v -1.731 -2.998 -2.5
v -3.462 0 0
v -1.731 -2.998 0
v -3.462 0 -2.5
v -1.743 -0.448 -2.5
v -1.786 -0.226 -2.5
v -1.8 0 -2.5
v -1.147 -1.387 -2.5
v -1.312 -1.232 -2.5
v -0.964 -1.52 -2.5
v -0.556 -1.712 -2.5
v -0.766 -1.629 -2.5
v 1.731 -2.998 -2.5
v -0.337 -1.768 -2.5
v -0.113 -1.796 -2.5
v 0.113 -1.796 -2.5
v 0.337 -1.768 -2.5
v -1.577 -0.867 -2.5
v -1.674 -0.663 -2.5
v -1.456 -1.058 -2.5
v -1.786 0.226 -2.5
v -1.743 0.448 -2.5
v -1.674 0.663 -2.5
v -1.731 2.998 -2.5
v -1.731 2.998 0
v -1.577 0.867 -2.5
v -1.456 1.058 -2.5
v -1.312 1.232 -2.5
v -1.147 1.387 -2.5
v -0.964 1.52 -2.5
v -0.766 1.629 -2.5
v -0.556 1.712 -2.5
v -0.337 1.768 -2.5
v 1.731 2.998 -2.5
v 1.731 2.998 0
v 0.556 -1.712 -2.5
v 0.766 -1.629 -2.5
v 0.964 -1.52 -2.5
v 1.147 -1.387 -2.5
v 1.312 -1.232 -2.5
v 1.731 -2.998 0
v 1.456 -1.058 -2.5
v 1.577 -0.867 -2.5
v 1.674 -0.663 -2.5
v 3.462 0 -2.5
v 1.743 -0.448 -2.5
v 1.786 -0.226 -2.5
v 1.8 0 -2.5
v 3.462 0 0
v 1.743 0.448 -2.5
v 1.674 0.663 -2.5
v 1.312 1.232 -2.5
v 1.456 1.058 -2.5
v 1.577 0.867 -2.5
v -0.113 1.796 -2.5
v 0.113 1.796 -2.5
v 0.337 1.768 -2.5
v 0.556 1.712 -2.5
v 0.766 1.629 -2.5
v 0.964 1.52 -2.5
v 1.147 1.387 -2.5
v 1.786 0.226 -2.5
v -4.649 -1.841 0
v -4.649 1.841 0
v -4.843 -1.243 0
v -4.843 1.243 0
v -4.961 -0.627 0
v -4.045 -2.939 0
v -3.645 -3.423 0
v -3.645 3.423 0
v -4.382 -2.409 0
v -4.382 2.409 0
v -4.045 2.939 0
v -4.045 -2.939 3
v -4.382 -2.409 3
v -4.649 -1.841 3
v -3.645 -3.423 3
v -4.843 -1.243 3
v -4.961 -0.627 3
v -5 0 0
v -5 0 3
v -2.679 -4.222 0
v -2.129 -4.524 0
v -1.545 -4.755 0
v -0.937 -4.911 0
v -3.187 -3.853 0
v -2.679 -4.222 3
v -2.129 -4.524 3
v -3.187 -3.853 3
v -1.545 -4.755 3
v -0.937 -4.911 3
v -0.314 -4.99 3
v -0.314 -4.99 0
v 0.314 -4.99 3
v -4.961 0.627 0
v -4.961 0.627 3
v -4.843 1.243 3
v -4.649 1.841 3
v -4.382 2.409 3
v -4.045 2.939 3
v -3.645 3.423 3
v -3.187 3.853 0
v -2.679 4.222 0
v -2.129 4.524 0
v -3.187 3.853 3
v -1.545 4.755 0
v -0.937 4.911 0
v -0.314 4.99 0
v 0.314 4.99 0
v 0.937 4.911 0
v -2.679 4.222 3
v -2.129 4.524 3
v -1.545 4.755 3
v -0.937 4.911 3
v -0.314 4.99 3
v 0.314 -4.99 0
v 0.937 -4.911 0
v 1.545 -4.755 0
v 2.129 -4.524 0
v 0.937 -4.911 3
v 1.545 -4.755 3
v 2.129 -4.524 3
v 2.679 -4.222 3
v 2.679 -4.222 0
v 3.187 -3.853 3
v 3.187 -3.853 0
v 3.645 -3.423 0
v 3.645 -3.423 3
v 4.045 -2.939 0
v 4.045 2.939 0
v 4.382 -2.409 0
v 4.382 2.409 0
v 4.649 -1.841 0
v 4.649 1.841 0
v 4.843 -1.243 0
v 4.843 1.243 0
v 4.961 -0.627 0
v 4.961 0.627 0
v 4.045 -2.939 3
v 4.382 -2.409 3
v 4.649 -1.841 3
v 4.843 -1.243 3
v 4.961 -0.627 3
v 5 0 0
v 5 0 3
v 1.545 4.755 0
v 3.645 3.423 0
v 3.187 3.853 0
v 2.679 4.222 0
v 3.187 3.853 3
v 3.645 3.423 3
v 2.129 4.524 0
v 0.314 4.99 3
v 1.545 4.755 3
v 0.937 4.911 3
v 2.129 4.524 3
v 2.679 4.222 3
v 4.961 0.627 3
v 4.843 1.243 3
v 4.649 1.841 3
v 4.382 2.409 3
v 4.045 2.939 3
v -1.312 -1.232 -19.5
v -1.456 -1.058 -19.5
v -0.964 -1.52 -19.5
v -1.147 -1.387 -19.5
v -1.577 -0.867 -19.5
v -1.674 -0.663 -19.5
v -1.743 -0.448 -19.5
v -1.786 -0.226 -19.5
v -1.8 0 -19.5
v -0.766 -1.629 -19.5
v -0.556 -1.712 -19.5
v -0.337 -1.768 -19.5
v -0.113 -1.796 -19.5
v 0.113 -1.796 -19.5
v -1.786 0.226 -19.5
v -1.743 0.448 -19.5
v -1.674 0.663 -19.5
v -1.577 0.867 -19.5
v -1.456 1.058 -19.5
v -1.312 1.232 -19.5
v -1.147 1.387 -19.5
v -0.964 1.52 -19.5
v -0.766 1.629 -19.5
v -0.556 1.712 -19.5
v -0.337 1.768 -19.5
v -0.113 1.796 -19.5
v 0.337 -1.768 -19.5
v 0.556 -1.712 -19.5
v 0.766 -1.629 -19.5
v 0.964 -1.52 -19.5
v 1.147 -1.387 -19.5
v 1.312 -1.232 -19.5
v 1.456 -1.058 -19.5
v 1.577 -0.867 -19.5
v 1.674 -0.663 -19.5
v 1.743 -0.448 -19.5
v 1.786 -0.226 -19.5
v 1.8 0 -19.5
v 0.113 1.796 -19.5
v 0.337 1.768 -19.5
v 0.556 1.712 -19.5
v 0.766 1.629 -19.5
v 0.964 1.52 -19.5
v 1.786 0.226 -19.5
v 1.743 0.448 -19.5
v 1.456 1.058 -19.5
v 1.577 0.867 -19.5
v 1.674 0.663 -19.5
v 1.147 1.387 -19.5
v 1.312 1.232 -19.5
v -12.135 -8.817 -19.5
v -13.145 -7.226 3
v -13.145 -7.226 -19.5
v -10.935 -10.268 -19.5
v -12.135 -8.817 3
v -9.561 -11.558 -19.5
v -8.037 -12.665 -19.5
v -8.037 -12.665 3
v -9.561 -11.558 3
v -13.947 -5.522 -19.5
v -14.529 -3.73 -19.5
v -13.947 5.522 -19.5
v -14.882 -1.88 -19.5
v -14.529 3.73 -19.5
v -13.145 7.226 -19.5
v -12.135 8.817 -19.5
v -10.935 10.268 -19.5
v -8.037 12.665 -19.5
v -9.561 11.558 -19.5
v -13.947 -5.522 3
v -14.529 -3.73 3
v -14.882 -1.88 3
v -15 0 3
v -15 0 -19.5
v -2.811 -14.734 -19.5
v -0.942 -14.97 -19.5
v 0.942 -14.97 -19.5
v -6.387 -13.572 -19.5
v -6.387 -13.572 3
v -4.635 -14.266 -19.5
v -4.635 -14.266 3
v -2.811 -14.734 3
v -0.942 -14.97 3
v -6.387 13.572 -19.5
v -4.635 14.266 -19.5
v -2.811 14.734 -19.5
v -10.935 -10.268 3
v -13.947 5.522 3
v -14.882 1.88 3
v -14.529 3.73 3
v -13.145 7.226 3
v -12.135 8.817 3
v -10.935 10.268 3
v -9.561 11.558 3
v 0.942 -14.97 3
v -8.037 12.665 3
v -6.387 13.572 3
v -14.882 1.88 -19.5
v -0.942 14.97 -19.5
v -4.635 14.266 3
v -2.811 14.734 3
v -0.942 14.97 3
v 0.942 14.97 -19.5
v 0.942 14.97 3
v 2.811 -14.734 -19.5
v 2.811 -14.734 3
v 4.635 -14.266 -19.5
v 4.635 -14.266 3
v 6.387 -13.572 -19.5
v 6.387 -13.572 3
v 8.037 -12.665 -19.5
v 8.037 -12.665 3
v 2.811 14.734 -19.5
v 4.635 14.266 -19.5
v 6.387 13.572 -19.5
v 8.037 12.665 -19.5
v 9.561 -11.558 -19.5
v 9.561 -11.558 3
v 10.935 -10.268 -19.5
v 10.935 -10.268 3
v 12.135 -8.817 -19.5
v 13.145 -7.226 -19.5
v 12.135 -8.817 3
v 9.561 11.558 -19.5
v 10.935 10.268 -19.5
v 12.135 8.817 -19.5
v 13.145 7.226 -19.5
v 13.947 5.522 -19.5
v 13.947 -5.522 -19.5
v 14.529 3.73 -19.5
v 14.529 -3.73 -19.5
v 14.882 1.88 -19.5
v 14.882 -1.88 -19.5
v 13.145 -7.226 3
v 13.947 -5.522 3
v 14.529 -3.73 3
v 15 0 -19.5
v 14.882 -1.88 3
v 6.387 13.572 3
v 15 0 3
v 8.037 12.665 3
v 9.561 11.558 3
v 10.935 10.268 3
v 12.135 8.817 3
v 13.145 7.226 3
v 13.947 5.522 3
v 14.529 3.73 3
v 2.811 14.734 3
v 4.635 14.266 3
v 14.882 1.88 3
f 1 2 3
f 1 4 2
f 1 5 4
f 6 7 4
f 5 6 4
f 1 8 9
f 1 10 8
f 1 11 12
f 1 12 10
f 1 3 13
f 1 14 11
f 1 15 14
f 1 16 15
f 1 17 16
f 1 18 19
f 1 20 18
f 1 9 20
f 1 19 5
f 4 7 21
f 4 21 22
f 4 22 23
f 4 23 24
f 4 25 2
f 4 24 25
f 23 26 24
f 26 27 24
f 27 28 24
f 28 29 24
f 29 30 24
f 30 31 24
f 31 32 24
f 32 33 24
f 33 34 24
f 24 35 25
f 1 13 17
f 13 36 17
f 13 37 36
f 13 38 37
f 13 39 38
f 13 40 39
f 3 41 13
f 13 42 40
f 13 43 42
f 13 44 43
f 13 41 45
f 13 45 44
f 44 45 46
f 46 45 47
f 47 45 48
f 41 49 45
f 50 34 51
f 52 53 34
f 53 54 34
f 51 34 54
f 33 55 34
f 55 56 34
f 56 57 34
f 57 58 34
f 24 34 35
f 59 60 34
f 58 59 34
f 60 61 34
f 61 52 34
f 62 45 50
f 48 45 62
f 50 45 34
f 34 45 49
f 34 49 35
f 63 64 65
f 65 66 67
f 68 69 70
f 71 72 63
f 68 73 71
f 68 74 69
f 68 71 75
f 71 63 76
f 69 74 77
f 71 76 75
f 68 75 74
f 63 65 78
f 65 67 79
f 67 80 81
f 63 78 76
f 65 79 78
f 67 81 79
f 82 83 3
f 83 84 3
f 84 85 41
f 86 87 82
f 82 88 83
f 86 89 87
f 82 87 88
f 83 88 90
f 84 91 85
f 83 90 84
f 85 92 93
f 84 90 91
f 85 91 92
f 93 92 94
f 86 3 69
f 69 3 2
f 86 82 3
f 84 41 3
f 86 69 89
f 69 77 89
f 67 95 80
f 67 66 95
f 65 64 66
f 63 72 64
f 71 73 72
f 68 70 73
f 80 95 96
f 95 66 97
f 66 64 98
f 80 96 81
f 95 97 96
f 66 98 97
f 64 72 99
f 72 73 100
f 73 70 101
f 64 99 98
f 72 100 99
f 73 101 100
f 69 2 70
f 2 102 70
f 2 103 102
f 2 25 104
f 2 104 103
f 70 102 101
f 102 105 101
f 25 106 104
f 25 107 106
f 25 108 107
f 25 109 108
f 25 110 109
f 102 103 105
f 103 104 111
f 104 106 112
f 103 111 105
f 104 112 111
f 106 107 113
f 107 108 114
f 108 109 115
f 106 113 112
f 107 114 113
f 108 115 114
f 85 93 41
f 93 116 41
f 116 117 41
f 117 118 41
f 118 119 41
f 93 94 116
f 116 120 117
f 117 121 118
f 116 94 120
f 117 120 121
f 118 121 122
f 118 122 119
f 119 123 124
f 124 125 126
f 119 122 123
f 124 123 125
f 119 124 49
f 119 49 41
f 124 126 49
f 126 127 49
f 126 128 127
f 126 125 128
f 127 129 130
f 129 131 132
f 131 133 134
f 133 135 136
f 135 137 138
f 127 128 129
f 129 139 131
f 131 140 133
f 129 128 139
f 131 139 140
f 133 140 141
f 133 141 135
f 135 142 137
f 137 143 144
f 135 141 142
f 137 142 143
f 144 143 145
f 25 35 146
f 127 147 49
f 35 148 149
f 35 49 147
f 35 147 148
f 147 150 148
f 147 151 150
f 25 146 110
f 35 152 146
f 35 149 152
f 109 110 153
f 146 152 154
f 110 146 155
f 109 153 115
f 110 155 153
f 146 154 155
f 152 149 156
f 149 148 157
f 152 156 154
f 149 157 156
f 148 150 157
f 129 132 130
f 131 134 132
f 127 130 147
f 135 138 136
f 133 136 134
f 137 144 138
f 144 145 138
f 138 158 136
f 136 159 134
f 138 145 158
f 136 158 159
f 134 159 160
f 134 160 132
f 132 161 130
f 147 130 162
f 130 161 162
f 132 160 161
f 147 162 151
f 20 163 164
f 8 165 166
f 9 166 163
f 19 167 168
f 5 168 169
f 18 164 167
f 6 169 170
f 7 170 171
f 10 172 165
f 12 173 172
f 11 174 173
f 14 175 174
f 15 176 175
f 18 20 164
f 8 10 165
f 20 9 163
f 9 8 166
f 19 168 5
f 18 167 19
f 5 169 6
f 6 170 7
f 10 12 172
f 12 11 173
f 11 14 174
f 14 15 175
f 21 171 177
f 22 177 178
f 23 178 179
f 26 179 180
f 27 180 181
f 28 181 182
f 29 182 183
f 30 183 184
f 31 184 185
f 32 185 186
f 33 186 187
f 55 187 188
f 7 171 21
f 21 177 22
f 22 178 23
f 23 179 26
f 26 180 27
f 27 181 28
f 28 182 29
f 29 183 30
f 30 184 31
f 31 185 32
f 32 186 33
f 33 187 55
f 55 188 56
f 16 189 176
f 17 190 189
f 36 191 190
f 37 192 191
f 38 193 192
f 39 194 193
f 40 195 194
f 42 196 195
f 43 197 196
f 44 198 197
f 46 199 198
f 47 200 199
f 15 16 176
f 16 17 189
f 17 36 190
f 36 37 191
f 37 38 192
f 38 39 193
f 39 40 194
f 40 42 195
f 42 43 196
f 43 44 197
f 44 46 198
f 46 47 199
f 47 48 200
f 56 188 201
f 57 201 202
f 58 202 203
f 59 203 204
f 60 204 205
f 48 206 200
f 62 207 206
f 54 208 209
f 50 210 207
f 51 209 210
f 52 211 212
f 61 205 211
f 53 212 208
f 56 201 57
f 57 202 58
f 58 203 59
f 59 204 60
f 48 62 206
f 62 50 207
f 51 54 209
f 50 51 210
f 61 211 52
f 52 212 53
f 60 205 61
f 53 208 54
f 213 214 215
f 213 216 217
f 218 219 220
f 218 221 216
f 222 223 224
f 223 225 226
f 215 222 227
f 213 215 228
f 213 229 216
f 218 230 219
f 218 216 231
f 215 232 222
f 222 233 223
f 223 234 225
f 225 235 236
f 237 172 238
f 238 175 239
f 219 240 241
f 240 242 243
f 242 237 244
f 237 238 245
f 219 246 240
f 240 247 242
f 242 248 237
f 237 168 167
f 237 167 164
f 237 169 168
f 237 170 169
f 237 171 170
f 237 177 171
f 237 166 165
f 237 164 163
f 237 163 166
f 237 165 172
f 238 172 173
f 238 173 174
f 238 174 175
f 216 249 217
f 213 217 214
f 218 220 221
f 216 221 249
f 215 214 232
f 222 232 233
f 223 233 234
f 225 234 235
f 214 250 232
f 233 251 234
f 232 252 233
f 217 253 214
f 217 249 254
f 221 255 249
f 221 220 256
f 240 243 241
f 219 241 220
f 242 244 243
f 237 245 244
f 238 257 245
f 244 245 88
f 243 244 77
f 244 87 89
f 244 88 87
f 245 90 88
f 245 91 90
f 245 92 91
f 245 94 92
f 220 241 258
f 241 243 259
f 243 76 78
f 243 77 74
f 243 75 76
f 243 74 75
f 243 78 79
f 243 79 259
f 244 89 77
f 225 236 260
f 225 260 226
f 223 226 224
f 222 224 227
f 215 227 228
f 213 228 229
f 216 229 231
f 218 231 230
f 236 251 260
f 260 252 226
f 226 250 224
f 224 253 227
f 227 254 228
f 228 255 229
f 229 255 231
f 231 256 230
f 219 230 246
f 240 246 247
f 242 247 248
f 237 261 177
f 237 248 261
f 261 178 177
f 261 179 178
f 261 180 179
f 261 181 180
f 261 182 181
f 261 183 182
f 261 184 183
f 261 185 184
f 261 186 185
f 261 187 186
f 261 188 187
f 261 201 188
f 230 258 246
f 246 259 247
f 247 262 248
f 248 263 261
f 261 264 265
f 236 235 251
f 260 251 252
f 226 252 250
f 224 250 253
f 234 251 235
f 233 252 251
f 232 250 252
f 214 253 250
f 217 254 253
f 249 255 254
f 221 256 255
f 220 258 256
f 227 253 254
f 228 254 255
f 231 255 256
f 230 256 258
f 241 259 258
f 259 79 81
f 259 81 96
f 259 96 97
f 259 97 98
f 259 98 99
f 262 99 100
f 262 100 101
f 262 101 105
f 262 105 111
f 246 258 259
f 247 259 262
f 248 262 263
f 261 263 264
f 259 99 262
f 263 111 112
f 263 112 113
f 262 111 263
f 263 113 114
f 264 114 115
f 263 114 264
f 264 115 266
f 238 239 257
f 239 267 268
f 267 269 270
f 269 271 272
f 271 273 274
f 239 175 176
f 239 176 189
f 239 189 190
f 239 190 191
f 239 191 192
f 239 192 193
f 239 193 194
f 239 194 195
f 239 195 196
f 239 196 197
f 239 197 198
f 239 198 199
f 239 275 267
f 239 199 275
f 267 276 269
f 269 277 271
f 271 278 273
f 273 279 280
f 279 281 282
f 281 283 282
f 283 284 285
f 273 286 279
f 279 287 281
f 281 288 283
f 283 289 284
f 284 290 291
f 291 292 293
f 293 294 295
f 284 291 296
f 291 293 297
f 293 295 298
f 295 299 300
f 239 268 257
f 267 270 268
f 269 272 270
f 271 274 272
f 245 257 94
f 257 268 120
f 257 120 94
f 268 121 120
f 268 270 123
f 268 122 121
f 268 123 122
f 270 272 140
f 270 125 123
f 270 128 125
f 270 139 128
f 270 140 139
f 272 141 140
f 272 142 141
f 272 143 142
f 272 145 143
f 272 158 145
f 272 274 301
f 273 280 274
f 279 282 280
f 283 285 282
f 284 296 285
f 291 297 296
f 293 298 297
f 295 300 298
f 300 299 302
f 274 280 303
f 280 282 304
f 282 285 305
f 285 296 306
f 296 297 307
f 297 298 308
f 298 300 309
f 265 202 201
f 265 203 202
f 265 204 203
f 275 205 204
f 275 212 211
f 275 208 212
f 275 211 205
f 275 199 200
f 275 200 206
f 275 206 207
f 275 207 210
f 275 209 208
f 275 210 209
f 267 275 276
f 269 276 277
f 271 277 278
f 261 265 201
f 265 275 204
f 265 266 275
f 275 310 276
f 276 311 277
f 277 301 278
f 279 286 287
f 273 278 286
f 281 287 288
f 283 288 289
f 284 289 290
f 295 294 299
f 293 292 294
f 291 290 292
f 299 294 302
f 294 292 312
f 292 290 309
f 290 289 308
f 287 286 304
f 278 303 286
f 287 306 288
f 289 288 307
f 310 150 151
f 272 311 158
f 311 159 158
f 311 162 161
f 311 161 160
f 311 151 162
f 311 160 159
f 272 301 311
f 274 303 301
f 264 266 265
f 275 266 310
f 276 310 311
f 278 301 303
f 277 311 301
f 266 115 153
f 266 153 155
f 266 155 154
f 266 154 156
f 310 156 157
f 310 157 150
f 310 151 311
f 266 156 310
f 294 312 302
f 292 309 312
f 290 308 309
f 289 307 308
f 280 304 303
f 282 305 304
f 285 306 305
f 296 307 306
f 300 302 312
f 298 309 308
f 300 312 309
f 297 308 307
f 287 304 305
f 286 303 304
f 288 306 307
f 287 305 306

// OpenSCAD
$fn = 50;

difference() {
	union() {
		translate(v = [0, 0, -19.5]) {
			cylinder(h = 22.5, r = 15.0);
		}
	}
	union() {
		translate(v = [0, 0, 0]) {
			rotate(a = [0, 0, 0]) {
				difference() {
					union() {
						translate(v = [0, 0, -2.5]) {
							linear_extrude(height = 2.5) {
								polygon(points = [[3.4619999999999997, 0.0], [1.7310000000000003, 2.9981799479017264], [-1.7309999999999992, 2.9981799479017264], [-3.4619999999999997, 4.2397272186481365e-16], [-1.7310000000000014, -2.998179947901726], [1.7309999999999977, -2.9981799479017277]]);
							}
						}
					}
					union();
				}
			}
		}
		#cylinder(h = 3, r = 5.0);
		#translate(v = [0, 0, -100.0]) {
			cylinder(h = 200, r = 1.8);
		}
	}
}
